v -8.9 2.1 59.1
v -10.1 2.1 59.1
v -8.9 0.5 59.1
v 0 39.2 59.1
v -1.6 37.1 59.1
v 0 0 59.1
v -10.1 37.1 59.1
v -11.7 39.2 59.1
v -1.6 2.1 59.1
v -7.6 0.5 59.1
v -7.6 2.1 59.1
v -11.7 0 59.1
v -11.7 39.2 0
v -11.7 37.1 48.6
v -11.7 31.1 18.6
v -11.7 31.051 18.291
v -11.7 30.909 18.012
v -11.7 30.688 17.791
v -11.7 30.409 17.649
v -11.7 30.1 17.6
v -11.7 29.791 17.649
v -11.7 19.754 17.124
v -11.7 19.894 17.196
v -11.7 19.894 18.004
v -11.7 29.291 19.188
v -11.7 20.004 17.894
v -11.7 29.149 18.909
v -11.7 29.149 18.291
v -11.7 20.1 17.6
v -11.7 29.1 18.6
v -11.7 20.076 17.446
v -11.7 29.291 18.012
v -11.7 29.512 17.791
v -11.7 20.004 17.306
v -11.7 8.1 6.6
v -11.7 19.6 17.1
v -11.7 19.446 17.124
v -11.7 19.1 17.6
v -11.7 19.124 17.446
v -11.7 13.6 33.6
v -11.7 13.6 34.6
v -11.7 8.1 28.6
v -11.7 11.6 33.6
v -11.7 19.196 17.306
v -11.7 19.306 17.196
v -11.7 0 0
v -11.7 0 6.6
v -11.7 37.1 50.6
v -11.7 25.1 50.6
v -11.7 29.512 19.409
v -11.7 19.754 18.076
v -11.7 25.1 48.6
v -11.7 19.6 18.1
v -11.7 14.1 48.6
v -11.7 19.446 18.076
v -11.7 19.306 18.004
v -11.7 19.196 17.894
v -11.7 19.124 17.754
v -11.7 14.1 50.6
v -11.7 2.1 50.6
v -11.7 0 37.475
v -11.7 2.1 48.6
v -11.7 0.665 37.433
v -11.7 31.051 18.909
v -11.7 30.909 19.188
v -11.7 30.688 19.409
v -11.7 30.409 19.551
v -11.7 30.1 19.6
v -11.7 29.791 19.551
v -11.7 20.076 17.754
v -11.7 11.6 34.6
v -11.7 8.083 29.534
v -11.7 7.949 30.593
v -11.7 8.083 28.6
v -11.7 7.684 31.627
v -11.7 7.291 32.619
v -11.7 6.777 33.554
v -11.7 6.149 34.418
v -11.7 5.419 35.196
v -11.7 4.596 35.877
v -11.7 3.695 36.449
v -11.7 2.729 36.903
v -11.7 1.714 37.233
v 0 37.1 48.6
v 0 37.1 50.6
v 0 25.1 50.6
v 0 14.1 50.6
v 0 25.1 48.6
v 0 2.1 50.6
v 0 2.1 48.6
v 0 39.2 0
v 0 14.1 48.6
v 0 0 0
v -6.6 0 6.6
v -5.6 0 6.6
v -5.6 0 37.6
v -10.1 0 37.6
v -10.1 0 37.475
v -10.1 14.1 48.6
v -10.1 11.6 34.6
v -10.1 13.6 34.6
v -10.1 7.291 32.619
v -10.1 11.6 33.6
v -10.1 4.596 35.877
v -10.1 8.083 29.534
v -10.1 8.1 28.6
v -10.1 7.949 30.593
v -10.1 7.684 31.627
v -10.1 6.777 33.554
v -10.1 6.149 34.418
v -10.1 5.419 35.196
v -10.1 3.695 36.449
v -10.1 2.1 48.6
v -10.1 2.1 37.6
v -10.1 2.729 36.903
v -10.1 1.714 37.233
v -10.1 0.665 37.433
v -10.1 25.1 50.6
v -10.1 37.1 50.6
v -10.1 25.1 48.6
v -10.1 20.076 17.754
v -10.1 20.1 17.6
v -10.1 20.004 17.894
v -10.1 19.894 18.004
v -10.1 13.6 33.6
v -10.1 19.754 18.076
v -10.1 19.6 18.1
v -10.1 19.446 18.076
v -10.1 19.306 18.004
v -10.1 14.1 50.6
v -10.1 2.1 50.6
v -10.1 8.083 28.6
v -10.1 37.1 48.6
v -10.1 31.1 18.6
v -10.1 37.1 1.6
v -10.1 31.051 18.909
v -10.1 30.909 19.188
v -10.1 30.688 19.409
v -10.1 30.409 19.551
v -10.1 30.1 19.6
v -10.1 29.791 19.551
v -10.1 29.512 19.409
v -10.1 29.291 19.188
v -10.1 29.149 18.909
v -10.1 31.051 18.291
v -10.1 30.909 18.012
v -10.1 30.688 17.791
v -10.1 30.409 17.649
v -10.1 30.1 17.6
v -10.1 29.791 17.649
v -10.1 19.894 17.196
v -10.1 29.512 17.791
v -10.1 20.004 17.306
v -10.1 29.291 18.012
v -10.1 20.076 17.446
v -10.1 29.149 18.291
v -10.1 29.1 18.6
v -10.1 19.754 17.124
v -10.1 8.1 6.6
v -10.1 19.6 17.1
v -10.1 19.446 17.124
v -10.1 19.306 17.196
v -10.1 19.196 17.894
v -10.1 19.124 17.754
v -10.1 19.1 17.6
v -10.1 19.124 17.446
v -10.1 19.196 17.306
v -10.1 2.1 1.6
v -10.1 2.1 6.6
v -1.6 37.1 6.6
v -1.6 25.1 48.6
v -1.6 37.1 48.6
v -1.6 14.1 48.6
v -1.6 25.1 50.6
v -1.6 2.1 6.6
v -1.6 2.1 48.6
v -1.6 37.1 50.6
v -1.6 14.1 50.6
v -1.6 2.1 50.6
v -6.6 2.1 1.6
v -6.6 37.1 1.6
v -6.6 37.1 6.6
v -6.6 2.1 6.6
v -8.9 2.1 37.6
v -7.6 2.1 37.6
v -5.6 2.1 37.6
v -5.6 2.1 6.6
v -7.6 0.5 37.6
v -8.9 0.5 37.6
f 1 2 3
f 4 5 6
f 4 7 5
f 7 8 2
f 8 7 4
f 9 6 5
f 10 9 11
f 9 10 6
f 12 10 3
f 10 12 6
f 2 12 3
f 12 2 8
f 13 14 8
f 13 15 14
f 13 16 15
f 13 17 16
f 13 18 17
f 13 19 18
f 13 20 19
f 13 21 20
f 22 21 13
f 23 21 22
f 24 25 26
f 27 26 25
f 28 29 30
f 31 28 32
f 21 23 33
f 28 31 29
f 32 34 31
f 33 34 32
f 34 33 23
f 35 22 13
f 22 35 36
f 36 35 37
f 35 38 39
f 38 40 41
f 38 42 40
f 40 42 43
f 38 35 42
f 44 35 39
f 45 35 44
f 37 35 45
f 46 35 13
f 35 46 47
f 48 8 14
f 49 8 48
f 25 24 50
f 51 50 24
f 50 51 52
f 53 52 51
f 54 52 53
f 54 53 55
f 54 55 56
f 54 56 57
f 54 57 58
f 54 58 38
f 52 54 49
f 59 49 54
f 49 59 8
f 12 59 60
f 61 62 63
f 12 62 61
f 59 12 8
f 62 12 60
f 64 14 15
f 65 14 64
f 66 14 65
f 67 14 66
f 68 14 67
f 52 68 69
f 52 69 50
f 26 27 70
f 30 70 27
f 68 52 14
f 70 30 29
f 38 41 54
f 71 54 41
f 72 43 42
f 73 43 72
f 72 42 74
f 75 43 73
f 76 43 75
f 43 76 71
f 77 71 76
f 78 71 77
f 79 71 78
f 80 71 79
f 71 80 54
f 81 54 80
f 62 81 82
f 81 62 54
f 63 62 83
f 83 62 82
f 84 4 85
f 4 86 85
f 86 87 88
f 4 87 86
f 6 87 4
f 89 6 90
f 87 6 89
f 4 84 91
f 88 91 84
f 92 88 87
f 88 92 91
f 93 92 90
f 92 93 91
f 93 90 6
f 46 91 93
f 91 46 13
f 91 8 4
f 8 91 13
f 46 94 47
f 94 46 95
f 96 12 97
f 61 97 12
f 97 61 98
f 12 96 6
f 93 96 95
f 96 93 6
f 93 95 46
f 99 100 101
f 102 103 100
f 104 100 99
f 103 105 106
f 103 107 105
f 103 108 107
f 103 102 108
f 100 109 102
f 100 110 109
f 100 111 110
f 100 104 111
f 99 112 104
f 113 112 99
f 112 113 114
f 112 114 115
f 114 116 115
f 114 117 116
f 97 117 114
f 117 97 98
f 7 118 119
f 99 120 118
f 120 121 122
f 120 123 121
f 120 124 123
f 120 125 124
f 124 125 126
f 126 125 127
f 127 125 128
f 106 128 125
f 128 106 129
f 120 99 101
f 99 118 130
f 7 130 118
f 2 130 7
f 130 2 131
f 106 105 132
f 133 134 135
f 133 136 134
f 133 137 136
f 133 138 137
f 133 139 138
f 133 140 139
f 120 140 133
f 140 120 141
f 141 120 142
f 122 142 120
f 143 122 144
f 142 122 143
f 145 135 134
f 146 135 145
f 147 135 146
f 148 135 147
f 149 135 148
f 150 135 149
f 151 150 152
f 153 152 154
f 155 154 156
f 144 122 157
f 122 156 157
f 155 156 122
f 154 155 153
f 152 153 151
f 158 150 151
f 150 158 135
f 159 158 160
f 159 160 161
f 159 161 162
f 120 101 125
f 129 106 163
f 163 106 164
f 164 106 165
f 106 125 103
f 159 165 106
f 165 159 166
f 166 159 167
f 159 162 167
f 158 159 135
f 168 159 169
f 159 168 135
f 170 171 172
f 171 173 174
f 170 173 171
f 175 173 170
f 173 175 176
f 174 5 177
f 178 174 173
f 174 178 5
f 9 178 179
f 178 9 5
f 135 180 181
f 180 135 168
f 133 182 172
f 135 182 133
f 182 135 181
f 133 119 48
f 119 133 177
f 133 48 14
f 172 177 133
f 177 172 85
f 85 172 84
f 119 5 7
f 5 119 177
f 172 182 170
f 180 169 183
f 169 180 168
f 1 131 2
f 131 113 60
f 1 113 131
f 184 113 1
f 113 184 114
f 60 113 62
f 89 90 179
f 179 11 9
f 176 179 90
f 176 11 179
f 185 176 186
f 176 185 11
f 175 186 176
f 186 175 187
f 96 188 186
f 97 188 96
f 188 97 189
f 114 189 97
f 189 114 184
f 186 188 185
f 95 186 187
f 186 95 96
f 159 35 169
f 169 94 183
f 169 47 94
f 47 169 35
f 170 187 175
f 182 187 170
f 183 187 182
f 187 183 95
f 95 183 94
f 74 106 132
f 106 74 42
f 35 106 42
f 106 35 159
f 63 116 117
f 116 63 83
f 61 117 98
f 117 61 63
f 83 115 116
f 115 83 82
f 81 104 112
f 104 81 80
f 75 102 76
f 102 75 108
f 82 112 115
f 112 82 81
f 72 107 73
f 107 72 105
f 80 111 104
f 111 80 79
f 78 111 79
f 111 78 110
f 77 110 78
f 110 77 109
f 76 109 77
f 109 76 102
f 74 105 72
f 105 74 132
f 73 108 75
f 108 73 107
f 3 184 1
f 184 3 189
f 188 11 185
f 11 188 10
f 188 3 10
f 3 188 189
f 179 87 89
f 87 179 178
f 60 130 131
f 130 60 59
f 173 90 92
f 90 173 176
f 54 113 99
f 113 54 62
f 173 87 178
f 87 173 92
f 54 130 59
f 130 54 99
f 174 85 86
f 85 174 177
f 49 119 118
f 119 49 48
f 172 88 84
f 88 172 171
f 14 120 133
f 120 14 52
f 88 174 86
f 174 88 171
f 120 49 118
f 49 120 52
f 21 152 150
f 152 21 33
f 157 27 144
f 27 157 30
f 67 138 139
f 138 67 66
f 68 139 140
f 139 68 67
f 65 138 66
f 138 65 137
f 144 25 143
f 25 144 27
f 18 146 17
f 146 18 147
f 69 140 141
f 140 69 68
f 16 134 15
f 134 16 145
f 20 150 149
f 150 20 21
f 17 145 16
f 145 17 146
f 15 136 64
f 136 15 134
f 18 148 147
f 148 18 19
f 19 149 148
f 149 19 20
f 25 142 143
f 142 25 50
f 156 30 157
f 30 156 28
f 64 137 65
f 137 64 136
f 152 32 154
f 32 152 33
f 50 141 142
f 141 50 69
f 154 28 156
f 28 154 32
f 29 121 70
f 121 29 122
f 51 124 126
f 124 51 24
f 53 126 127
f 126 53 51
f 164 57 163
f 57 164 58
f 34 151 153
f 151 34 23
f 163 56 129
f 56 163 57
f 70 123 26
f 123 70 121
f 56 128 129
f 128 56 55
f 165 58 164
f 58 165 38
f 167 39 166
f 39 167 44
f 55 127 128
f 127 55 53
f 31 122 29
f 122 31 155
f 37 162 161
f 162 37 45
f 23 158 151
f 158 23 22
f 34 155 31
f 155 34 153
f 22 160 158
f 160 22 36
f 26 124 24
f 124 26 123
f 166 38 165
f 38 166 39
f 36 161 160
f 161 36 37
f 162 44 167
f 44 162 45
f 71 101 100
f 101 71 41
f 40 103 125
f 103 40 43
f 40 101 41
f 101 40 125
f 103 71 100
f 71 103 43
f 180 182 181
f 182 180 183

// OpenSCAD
length = 47; //47
width = 35; //35
height = 8.5; //8.5
thick = 1.6;

slit_height = 10.5;

rotate([0, -90, 0])
{
difference()
{
    cube([length+thick+slit_height, width+2*thick+1, height+2*thick]);
    translate([thick, thick+0.5, thick])
    {
        cube([length+20, width, height]);
        
    }
    // Side openning for USB, sliders
    translate([5+thick, 0, 4+thick]) cube([31, thick+0.5, 4.5]);
    translate([5+thick, 0, 4+thick]) cube([22, thick+0.5+6, height+2*thick]);
    translate([29, -0.4, 10]) cylinder(d=17, h=10, $fn=50);
//    translate([13, -0.4, 10]) cylinder(d=17, h=10, $fn=50);
    // gap for switches to slide down
    translate([5+thick, 0.5+thick-1.6, 6+thick]) cube([70, 1.6, 1.3]);
    
    // Slits for lanyard
    translate([length+thick, thick+0.5, 0]) cube([2, 12, 30]);
    translate([length+thick, thick+0.5+width-12, 0]) cube([2, 12, 30]);
    
    // Mic port - bottom one
    translate([thick+17, thick+0.5+28, height+thick]) cylinder(r=1, h=thick, $fn = 20);
    // led cutouts
    translate([thick+16, thick+0.5+width/2, height+thick]) cylinder(r=0.5, h=thick, $fn = 20);
    translate([thick+32, thick+0.5+9.5, height+thick]) cube([1,2,thick]);
    
}
// battery support
difference()
{
    cube([5+thick, width+2*thick, 5+thick]);
//    translate([thick, thick+5+0.5, thick]) cube([5, width-10, 5]);
}
}
